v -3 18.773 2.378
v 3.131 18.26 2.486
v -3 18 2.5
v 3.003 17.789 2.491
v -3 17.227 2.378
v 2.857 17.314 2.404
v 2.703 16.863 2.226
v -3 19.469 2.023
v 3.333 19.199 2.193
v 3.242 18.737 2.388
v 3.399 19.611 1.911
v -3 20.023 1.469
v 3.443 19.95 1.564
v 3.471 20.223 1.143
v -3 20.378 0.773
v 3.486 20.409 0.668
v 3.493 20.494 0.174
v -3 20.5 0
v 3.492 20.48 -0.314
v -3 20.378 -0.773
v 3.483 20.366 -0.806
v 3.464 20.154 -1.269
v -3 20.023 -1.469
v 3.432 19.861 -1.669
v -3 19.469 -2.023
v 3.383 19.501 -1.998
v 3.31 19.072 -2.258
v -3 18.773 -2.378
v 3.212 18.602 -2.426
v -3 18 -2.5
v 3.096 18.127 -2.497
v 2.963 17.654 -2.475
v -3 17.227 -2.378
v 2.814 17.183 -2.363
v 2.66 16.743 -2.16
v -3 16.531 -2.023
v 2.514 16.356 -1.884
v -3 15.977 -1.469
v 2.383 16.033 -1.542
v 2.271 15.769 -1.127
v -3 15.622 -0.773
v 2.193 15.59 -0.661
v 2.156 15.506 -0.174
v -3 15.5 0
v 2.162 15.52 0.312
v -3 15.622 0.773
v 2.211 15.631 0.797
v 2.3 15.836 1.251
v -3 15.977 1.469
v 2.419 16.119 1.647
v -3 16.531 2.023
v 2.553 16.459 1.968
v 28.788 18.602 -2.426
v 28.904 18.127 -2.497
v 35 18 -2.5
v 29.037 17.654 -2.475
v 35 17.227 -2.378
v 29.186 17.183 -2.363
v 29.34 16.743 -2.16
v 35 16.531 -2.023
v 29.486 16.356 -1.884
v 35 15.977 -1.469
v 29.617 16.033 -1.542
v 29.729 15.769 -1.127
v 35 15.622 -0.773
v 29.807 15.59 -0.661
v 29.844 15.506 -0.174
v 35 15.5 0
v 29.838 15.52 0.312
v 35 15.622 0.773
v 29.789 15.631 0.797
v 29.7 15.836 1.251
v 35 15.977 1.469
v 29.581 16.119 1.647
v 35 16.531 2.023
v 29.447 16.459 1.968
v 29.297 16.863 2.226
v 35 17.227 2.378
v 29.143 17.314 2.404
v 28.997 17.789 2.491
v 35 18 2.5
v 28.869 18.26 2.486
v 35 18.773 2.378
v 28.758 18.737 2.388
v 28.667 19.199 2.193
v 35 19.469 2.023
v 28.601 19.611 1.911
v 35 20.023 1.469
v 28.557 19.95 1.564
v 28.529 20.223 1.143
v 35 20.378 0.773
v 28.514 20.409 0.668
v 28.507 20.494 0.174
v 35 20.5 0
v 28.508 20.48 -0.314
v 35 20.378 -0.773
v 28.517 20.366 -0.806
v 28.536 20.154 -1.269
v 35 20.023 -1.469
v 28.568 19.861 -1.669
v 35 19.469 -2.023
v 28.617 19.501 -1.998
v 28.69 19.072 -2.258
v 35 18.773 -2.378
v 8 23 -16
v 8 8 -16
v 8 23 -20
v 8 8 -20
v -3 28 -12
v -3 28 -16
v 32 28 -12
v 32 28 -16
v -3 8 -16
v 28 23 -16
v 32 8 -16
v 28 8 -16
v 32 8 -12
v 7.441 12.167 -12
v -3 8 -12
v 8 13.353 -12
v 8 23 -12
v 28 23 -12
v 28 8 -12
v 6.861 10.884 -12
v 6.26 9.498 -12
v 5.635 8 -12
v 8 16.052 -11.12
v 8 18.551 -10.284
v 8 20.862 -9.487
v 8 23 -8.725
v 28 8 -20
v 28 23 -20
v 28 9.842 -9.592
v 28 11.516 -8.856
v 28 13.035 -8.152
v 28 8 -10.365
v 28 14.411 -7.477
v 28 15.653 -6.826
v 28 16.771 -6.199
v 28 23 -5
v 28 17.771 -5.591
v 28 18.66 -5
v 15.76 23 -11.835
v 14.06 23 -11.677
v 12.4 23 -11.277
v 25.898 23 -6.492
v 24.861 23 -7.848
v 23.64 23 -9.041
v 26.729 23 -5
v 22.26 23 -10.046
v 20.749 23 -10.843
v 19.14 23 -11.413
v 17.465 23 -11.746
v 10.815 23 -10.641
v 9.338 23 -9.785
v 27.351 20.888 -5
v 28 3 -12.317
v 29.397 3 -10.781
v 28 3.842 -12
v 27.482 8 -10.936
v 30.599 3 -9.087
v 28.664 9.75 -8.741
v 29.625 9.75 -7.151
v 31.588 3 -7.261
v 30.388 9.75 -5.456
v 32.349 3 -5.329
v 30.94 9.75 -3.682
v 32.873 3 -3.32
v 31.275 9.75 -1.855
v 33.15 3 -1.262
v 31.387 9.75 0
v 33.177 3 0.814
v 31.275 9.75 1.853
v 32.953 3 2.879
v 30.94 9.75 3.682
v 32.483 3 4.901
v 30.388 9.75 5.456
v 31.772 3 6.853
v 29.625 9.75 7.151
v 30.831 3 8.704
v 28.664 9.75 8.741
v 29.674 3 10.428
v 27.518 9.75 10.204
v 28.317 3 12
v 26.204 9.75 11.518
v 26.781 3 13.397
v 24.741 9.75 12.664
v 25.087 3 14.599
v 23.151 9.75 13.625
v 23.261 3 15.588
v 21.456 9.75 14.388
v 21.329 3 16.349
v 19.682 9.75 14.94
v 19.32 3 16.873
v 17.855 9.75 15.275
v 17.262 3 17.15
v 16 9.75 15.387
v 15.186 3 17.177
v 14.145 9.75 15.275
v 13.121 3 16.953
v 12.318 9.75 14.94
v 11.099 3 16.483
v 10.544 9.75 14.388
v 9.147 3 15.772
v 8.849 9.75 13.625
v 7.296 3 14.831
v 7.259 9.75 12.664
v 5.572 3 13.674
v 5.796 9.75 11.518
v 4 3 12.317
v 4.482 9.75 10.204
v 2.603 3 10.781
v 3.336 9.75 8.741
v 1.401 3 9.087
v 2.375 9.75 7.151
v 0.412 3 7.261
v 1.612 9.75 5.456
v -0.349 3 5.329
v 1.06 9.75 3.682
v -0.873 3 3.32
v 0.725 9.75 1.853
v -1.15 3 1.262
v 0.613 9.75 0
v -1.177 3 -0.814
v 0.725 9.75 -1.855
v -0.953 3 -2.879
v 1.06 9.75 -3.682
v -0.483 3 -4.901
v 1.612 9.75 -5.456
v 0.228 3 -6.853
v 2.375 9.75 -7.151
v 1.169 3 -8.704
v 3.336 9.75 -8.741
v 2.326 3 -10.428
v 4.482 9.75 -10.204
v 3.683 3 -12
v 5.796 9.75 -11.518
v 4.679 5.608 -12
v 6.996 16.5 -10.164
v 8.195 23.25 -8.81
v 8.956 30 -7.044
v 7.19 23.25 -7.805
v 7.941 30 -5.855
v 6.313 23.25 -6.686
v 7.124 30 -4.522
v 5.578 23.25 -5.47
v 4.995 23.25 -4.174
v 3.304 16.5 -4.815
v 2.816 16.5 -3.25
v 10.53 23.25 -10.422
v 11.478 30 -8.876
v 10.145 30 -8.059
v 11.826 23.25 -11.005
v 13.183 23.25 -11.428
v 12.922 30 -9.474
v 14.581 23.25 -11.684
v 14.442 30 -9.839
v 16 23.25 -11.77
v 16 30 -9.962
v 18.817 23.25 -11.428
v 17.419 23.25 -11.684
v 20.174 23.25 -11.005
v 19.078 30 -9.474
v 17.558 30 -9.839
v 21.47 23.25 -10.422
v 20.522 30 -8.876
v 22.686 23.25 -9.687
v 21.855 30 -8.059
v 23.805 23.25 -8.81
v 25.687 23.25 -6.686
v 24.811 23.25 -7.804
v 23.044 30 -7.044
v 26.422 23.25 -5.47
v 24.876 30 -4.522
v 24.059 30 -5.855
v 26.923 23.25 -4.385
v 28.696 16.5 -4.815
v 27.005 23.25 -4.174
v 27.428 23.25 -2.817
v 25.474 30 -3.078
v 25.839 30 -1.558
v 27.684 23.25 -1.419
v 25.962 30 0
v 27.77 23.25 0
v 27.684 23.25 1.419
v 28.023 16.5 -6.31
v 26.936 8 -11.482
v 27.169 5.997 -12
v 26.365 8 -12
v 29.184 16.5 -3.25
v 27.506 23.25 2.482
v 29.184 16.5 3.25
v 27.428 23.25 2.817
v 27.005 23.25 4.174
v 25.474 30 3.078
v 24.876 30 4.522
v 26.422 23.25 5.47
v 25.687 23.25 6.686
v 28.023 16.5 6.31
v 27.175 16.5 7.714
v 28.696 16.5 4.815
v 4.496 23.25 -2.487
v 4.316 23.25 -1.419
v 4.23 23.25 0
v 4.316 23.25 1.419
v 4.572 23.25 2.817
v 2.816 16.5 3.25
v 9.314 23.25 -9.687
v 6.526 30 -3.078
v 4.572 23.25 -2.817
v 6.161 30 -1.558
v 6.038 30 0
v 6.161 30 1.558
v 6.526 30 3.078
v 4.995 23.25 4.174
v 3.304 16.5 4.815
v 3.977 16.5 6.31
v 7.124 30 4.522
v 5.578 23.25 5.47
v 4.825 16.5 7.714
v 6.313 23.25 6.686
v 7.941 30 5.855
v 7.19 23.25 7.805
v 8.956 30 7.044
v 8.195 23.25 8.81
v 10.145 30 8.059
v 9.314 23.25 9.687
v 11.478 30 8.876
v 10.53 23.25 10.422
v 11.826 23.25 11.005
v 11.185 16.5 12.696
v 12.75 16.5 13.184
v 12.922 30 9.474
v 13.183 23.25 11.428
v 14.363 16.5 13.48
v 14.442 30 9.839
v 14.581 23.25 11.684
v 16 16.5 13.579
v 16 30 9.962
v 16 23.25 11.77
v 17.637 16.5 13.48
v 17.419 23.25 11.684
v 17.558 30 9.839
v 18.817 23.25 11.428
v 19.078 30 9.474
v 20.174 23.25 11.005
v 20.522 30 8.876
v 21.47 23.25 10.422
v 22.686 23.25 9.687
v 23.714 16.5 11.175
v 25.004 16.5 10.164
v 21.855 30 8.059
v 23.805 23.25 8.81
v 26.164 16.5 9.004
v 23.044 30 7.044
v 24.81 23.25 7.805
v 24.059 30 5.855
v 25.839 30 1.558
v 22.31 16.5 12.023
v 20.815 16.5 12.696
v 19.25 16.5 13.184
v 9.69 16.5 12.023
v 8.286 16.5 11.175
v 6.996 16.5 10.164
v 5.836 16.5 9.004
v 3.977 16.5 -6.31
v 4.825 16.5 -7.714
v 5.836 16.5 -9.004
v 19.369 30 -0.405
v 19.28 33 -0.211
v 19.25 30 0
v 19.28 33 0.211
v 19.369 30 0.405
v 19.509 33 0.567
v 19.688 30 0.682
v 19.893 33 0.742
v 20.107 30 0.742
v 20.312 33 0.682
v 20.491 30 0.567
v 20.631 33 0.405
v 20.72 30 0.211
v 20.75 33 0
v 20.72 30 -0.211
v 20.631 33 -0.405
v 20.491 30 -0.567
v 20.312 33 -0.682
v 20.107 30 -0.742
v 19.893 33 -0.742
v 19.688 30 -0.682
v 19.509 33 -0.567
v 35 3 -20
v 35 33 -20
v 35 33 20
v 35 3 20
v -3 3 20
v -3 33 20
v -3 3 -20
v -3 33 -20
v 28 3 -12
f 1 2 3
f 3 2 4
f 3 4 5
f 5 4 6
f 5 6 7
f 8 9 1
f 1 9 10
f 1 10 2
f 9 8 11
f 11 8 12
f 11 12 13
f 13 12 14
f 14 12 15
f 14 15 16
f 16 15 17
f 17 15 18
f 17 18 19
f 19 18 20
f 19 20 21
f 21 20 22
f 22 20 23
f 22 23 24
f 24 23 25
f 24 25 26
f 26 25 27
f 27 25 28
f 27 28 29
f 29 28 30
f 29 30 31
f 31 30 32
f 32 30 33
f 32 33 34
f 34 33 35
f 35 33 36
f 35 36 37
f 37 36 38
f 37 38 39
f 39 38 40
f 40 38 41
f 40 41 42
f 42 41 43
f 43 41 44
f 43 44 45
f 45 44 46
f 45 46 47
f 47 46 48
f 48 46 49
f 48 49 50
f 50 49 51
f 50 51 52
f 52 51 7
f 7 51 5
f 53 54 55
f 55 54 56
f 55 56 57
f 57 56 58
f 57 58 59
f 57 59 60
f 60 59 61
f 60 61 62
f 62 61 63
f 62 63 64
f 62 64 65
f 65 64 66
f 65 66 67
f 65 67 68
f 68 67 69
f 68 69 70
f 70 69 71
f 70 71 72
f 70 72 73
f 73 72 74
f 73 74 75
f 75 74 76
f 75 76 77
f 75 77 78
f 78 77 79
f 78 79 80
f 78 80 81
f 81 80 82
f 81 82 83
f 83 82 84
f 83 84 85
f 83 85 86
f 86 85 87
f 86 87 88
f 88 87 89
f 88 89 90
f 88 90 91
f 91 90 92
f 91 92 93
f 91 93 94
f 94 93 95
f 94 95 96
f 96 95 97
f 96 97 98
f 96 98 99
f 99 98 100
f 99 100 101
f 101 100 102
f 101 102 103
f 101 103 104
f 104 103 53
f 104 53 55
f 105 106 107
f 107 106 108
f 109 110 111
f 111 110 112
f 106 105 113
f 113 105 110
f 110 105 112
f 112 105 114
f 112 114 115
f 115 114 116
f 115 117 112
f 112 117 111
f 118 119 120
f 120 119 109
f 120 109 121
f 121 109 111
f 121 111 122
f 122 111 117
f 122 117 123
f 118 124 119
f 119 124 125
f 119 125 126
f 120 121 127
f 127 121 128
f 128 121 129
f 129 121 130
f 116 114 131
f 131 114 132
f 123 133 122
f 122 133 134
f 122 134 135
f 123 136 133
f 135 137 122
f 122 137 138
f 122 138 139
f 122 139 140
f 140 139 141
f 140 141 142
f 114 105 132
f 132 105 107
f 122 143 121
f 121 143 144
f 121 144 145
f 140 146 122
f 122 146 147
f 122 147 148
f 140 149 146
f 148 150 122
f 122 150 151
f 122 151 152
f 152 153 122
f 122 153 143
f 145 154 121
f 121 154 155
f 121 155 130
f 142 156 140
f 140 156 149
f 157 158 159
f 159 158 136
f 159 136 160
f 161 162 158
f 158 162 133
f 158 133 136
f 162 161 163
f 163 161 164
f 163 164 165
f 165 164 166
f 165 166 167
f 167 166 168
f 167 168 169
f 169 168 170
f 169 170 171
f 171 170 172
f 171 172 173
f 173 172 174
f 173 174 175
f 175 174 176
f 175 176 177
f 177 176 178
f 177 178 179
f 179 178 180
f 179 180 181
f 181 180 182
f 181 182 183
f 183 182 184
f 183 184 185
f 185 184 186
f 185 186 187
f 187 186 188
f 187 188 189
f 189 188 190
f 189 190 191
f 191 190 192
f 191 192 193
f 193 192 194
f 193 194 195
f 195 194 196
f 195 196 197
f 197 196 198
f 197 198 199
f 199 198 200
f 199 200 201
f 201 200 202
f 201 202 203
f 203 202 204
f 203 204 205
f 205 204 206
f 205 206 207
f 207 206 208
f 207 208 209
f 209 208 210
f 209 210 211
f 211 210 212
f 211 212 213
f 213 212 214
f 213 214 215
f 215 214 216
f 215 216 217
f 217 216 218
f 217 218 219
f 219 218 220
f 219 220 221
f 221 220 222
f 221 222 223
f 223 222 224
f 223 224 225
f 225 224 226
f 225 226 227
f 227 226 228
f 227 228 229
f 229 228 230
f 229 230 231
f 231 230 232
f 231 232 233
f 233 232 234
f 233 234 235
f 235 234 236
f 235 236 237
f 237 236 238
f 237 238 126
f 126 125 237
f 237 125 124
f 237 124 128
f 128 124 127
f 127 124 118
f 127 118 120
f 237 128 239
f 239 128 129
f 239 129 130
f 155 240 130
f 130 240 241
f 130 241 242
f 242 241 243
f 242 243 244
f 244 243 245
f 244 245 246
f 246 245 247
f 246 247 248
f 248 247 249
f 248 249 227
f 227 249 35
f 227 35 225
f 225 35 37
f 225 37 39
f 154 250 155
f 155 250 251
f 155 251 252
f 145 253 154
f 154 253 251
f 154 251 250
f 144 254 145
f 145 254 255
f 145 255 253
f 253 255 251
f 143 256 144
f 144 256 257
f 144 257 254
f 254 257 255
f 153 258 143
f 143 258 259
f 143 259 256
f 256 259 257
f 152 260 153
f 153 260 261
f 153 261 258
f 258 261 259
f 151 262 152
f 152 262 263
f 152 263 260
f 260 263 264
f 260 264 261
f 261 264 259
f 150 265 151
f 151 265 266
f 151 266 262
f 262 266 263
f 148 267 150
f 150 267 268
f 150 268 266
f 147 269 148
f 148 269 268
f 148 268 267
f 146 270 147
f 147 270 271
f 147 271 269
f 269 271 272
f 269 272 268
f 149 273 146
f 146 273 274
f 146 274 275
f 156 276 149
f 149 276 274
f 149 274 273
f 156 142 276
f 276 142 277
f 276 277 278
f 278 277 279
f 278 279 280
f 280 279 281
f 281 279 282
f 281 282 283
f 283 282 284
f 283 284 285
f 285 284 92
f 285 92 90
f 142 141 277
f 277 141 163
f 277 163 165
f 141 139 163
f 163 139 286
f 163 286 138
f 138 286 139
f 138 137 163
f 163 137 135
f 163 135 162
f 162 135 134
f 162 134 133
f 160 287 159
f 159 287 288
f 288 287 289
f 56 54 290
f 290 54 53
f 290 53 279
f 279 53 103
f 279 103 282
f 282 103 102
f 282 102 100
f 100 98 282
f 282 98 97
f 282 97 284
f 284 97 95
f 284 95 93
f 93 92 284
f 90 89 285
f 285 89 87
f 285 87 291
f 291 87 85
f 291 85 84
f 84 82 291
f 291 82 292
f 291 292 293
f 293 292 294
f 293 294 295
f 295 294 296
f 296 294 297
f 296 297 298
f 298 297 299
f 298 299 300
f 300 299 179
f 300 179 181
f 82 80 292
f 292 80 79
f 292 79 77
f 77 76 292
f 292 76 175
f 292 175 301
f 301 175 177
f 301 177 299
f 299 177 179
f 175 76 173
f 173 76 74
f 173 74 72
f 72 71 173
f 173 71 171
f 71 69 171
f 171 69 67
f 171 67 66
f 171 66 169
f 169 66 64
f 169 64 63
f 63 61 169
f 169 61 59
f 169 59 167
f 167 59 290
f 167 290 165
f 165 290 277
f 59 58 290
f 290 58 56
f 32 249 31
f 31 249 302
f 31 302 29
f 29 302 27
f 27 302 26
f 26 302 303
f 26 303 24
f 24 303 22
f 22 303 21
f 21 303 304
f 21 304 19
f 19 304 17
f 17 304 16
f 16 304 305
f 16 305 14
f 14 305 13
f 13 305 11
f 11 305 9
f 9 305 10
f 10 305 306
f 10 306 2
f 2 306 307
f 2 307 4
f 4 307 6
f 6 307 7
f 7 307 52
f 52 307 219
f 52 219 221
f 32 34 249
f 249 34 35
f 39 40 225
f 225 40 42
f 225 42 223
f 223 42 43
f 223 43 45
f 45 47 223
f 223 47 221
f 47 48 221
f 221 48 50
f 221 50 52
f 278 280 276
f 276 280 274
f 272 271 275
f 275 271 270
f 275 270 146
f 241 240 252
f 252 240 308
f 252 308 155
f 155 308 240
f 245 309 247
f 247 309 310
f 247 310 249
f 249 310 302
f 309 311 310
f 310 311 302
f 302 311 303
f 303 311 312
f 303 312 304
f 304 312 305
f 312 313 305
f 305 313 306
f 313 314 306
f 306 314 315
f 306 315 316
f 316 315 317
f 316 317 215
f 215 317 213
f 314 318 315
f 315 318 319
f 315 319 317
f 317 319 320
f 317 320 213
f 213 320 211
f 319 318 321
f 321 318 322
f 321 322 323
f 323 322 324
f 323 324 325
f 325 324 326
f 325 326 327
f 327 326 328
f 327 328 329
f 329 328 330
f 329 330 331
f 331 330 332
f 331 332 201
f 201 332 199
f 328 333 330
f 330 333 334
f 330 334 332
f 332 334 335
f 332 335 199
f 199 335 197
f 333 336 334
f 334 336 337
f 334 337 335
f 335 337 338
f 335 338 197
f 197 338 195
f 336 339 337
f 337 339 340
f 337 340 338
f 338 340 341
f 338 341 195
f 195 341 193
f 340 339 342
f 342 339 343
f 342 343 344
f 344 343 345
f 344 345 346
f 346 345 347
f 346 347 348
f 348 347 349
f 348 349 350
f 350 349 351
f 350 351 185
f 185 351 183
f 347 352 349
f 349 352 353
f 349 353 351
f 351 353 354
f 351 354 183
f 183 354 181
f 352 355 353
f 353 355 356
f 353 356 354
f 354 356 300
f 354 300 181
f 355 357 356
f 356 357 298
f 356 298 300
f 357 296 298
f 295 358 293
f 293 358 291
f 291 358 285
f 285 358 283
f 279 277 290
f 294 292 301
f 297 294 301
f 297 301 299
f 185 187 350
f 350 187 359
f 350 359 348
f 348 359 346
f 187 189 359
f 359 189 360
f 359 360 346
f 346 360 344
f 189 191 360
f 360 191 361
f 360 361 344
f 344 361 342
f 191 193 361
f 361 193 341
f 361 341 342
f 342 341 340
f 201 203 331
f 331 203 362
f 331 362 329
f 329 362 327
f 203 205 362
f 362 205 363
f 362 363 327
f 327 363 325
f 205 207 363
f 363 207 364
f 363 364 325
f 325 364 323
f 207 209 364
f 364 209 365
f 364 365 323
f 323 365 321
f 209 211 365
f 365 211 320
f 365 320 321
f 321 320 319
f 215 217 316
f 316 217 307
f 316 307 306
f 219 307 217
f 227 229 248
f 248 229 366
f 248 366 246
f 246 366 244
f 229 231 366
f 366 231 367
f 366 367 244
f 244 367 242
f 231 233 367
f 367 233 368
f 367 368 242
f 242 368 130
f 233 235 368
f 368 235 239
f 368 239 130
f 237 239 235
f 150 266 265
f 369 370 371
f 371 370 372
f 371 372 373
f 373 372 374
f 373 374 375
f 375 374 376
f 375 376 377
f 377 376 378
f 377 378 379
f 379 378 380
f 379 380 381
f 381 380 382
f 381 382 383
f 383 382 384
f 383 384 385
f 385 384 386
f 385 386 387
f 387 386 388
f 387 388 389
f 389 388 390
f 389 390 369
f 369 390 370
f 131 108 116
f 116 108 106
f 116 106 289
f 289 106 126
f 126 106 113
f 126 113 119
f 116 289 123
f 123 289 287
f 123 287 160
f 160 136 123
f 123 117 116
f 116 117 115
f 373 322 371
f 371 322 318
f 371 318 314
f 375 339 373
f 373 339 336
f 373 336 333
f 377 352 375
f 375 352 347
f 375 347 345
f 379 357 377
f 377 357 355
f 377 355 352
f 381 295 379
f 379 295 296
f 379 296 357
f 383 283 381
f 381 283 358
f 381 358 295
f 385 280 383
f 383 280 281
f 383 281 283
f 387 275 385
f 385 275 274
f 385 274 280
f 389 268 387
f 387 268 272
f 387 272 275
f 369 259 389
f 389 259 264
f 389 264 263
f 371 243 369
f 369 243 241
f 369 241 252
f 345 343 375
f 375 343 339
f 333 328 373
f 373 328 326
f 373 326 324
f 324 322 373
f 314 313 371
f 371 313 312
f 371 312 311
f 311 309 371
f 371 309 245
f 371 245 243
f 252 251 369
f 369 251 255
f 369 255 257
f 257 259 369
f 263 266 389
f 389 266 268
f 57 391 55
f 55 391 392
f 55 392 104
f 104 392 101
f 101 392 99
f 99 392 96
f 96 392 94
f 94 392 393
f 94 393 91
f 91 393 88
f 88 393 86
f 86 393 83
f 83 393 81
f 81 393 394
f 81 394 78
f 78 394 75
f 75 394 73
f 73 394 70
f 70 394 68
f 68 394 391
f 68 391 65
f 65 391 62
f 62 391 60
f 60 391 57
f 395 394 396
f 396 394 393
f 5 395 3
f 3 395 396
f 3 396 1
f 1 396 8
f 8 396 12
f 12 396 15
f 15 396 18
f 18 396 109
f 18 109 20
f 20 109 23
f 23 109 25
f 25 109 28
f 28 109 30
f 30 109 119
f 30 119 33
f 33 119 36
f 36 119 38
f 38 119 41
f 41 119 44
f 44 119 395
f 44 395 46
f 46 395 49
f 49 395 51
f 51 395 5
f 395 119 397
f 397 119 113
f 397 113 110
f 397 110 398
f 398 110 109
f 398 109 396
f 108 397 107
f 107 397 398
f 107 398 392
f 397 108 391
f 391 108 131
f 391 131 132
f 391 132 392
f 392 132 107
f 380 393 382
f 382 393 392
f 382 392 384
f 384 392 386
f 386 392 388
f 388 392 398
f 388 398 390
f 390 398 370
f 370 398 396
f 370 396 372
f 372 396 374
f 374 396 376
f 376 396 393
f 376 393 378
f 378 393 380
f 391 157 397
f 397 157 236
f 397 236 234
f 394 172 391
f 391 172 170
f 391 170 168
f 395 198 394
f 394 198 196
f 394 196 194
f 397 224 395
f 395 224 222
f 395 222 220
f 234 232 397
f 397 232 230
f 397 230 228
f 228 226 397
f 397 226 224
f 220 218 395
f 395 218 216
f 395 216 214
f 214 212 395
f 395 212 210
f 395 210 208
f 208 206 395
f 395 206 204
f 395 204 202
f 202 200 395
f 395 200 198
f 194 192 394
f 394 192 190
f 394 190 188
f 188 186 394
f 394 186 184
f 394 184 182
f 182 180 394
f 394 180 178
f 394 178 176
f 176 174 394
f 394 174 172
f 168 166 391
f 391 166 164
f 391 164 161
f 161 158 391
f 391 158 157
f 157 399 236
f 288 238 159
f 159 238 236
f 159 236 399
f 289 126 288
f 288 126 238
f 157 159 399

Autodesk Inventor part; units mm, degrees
ref_plane "YZ Plane" through (0, 0, 0) normal (1, 0, 0) x (0, 1, 0)
ref_plane "XZ Plane" through (0, 0, 0) normal (0, 1, 0) x (-1, 0, 0)
ref_plane "XY Plane" through (0, 0, 0) normal (0, 0, 1) x (1, 0, 0)
ref_plane "Work Plane13" through (0, 3, 0) normal (0, 1, 0) x (1, 0, 0)
sketch "Sketch45" plane through (0, 3, 0) normal (0, 1, 0) x (1, 0, 0)
  line L0 (35, -20) -> (-3, -20)
  line L1 (-3, -20) -> (-3, 20)
  line L2 (-3, 20) -> (35, 20)
  line L3 (35, 20) -> (35, -20)
  point P0 (0, 0)
  dimension "d142" = 38
  dimension "d143" = 40
extrude "Extrusion34" add sketch "Sketch45" along normal blind 30
sketch "Sketch46" plane through (0, 33, 0) normal (0, 1, 0) x (1, 0, 0)
  point P0 (0, 0)
ref_plane "Work Plane11" through (0, 0, 0) normal (0, -1, 0) x (1, 0, 0)
sketch "Sketch47" plane through (0, 0, 0) normal (0, -1, 0) x (1, 0, 0)
  circle A0 centre (16, 0) radius 18
  point P0 (0, 0)
  dimension "d146" = 36
extrude "Extrusion35" cut sketch "Sketch47" against normal blind 30 draft -15
sketch "Sketch48" plane through (0, 33, 0) normal (0, 1, 0) x (1, 0, 0)
  point P0 (0, 0)
sketch "Sketch49" plane through (0, 33, 0) normal (0, 1, 0) x (1, 0, 0)
  circle A0 centre (20, 0) radius 0.75
  point P0 (0, 0)
  dimension "d149" = 1.5
extrude "Extrusion36" cut sketch "Sketch49" against normal through all
ref_plane "Work Plane7" through (35, 3, -20) normal (0, 0, -1) x (-1, 0, 0)
sketch "Sketch58" plane through (35, 3, -20) normal (0, 0, -1) x (-1, 0, 0)
  line L0 (7, 20) -> (27, 20)
  line L1 (27, 20) -> (27, 5)
  line L2 (27, 5) -> (7, 5)
  line L3 (7, 5) -> (7, 20)
  point P0 (35, -3)
  dimension "d156" = 20
  dimension "d157" = 15
extrude "Extrusion38" cut sketch "Sketch58" against normal blind 15
ref_plane "Work Plane4" through (-3, 3, -20) normal (-1, 0, 0) x (0, 0, 1)
sketch "Sketch59" plane through (-3, 3, -20) normal (-1, 0, 0) x (0, 0, 1)
  line L0 (4, 25) -> (8, 25)
  line L1 (8, 25) -> (8, 5)
  line L2 (8, 5) -> (4, 5)
  line L3 (4, 5) -> (4, 25)
  point P0 (20, -3)
  dimension "d160" = 4
  dimension "d161" = 20
extrude "Extrusion39" cut sketch "Sketch59" against normal blind 35
ref_plane "Work Plane1" through (0, 3, 0) normal (0, 1, 0) x (1, 0, 0)
ref_plane "Work Plane6" through (0, 23, 0) normal (0, 1, 0) x (1, 0, 0)
sketch "Sketch62" plane through (-3, 3, -20) normal (-1, 0, 0) x (0, 0, 1)
  circle A0 centre (20, 15) radius 2.5
  point P0 (20, -3)
  dimension "d172" = 5
extrude "Extrusion42" cut sketch "Sketch62" against normal through all
sketch "Sketch65" plane through (0, 3, 0) normal (0, -1, 0) x (1, 0, 0)
  line L0 (-3, -12) -> (32, -12) projected
  line L1 (28, -20) -> (28, -16) projected
  line L2 (3.5815, -12) -> (28, -12)
  line L3 (28, -12) -> (28, -17.2375)
  line L4 (28, -17.2375) -> (3.5815, -17.2375)
  line L5 (3.5815, -17.2375) -> (3.5815, -12)
  point P0 (0, 0)
extrude "Extrusion44" add sketch "Sketch65" against normal blind 5
properties part number "liquid port_only_v03"
